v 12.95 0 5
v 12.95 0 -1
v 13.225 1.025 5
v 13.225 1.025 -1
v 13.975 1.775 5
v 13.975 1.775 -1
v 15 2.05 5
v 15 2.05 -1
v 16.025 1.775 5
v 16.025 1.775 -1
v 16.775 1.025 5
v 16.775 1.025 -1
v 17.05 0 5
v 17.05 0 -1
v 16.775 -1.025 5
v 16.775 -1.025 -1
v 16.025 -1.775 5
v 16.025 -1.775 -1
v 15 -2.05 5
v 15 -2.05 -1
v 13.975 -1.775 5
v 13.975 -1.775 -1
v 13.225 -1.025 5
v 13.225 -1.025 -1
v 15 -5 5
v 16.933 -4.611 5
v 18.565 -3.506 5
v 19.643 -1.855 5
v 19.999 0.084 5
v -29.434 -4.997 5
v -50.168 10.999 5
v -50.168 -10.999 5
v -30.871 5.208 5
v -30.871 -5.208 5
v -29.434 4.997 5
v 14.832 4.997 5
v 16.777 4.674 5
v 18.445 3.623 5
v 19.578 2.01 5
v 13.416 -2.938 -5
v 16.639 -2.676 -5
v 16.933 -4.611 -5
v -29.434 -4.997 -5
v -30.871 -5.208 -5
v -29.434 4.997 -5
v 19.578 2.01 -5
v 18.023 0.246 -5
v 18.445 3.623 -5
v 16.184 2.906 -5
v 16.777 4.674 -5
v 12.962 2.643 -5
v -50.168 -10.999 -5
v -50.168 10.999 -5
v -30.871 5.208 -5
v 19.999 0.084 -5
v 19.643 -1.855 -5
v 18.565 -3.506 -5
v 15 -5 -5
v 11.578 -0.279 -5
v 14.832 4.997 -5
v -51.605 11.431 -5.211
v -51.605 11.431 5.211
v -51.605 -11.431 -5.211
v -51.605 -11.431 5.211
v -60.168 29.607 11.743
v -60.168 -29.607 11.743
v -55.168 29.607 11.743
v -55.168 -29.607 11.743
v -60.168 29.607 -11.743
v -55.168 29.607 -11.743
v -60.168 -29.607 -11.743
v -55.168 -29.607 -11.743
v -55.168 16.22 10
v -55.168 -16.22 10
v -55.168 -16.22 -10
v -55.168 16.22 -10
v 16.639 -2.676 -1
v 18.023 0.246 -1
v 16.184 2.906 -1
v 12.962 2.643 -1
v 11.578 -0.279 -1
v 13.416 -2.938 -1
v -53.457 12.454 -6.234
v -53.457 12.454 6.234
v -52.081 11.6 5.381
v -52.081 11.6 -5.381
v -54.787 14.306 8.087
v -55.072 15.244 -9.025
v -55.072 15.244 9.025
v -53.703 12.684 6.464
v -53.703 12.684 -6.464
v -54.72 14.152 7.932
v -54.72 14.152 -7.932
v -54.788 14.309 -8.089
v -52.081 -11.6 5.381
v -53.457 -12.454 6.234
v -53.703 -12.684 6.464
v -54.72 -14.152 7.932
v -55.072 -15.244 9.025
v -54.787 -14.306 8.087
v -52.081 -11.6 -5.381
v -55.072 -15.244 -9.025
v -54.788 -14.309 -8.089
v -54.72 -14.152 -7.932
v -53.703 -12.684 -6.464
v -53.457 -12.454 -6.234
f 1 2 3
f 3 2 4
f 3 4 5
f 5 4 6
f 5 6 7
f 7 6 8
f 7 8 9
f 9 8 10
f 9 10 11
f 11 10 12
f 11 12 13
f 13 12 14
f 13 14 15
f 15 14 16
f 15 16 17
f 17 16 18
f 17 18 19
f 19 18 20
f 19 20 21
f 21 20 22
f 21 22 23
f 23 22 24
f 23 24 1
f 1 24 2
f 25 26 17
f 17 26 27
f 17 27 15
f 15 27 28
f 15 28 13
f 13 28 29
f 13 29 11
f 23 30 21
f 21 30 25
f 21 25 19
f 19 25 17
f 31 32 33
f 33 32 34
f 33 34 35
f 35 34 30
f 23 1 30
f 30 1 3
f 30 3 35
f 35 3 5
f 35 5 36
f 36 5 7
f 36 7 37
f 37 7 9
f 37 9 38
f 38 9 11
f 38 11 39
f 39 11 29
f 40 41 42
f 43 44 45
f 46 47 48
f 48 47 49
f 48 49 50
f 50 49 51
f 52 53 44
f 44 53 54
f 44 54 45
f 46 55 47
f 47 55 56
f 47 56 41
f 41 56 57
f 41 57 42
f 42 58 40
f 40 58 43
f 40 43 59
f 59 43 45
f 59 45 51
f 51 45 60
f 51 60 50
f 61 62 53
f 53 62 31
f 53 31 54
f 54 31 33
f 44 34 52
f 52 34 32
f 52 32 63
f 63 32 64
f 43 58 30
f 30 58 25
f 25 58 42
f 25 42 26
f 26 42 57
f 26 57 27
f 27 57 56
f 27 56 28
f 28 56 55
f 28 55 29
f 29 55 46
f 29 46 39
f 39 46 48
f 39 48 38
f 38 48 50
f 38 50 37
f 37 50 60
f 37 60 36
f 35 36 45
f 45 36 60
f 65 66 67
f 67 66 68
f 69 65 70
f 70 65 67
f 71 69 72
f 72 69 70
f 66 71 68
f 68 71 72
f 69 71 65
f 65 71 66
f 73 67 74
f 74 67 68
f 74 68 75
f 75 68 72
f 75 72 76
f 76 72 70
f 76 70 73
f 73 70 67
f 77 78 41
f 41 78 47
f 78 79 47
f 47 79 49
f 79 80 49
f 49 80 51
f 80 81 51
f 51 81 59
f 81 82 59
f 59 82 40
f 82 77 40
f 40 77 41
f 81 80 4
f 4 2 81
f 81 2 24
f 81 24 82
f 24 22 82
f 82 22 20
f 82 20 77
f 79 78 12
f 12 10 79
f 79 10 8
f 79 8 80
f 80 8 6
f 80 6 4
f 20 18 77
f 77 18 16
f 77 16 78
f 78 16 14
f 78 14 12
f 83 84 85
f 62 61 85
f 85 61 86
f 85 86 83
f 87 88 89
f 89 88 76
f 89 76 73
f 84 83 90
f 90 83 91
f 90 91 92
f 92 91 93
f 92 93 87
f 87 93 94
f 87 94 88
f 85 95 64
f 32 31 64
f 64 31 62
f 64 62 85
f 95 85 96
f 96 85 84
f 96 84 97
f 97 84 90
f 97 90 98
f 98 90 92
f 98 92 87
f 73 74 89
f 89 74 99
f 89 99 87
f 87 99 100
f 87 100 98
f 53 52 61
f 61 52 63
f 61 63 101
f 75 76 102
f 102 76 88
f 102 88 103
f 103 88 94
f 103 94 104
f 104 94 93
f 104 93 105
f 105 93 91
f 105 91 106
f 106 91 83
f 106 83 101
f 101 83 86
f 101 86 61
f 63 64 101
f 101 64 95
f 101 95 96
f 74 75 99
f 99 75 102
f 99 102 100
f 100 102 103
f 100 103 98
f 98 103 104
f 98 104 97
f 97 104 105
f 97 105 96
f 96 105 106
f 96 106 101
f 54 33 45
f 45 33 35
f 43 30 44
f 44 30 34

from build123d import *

# Parameters (mm, degrees)
SKETCH_1_R          = 2.05
EXTRUDE_1_DEPTH     = 5
SKETCH_3_W          = 23.485848614
SKETCH_3_H          = 59.214320442
EXTRUDE_2_DEPTH     = 5
CUT_EXTRUDE_1_DEPTH = 4
FILLET_1_R          = 5


with BuildPart() as part:
    # 草圖1 → 填料-伸長1 (new, symmetric)
    with BuildSketch(Plane.XY):
        with BuildLine():
            Line((-30.167793166, 4.997183752), (14.832206834, 4.997183752))
            ThreePointArc((14.832206834, 4.997183752), (19.999295888, 0.083908399), (15, -5))
            Line((15, -5), (-30.167793166, -4.997183752))
            Line((-30.167793166, -4.997183752), (-55.167793166, -12.5))
            Line((-55.167793166, -12.5), (-55.167793166, 12.5))
            Line((-55.167793166, 12.5), (-30.167793166, 4.997183752))
        make_face()
        with Locations((15, 0)):
            Circle(SKETCH_1_R, mode=Mode.SUBTRACT)
    extrude(amount=EXTRUDE_1_DEPTH, both=True)

    # 草圖3 → 填料-伸長2 (add)
    with BuildSketch(Plane.ZY.offset(55.167793166)):
        Rectangle(SKETCH_3_W, SKETCH_3_H)
    extrude(amount=EXTRUDE_2_DEPTH)

    # 草圖4 → 除料-伸長1 (cut)
    with BuildSketch(Plane(origin=(0, 0, -5), x_dir=(-1, 0, 0), z_dir=(0, 0, -1))):
        Polygon((-16.638696654, -2.675834113), (-13.416200442, -2.938229795), (-11.57771101, -0.278664052), (-12.96171779, 2.643297373), (-16.184214003, 2.905693054), (-18.022703435, 0.246127311), align=None)
    extrude(amount=-CUT_EXTRUDE_1_DEPTH, mode=Mode.SUBTRACT)

    # 圓角1
    fillet_1_edges = [part.edges().sort_by_distance(p)[0] for p in [
        (-30.167793166, 4.997183752, 0),
        (-30.167793166, -4.997183752, 0),
        (-55.167793166, -12.5, 0),
        (-55.167793166, 12.5, 0),
        (-55.167793166, 0, -5),
        (-55.167793166, 0, 5),
    ]]
    fillet(fillet_1_edges, radius=FILLET_1_R)


solid = part.part
